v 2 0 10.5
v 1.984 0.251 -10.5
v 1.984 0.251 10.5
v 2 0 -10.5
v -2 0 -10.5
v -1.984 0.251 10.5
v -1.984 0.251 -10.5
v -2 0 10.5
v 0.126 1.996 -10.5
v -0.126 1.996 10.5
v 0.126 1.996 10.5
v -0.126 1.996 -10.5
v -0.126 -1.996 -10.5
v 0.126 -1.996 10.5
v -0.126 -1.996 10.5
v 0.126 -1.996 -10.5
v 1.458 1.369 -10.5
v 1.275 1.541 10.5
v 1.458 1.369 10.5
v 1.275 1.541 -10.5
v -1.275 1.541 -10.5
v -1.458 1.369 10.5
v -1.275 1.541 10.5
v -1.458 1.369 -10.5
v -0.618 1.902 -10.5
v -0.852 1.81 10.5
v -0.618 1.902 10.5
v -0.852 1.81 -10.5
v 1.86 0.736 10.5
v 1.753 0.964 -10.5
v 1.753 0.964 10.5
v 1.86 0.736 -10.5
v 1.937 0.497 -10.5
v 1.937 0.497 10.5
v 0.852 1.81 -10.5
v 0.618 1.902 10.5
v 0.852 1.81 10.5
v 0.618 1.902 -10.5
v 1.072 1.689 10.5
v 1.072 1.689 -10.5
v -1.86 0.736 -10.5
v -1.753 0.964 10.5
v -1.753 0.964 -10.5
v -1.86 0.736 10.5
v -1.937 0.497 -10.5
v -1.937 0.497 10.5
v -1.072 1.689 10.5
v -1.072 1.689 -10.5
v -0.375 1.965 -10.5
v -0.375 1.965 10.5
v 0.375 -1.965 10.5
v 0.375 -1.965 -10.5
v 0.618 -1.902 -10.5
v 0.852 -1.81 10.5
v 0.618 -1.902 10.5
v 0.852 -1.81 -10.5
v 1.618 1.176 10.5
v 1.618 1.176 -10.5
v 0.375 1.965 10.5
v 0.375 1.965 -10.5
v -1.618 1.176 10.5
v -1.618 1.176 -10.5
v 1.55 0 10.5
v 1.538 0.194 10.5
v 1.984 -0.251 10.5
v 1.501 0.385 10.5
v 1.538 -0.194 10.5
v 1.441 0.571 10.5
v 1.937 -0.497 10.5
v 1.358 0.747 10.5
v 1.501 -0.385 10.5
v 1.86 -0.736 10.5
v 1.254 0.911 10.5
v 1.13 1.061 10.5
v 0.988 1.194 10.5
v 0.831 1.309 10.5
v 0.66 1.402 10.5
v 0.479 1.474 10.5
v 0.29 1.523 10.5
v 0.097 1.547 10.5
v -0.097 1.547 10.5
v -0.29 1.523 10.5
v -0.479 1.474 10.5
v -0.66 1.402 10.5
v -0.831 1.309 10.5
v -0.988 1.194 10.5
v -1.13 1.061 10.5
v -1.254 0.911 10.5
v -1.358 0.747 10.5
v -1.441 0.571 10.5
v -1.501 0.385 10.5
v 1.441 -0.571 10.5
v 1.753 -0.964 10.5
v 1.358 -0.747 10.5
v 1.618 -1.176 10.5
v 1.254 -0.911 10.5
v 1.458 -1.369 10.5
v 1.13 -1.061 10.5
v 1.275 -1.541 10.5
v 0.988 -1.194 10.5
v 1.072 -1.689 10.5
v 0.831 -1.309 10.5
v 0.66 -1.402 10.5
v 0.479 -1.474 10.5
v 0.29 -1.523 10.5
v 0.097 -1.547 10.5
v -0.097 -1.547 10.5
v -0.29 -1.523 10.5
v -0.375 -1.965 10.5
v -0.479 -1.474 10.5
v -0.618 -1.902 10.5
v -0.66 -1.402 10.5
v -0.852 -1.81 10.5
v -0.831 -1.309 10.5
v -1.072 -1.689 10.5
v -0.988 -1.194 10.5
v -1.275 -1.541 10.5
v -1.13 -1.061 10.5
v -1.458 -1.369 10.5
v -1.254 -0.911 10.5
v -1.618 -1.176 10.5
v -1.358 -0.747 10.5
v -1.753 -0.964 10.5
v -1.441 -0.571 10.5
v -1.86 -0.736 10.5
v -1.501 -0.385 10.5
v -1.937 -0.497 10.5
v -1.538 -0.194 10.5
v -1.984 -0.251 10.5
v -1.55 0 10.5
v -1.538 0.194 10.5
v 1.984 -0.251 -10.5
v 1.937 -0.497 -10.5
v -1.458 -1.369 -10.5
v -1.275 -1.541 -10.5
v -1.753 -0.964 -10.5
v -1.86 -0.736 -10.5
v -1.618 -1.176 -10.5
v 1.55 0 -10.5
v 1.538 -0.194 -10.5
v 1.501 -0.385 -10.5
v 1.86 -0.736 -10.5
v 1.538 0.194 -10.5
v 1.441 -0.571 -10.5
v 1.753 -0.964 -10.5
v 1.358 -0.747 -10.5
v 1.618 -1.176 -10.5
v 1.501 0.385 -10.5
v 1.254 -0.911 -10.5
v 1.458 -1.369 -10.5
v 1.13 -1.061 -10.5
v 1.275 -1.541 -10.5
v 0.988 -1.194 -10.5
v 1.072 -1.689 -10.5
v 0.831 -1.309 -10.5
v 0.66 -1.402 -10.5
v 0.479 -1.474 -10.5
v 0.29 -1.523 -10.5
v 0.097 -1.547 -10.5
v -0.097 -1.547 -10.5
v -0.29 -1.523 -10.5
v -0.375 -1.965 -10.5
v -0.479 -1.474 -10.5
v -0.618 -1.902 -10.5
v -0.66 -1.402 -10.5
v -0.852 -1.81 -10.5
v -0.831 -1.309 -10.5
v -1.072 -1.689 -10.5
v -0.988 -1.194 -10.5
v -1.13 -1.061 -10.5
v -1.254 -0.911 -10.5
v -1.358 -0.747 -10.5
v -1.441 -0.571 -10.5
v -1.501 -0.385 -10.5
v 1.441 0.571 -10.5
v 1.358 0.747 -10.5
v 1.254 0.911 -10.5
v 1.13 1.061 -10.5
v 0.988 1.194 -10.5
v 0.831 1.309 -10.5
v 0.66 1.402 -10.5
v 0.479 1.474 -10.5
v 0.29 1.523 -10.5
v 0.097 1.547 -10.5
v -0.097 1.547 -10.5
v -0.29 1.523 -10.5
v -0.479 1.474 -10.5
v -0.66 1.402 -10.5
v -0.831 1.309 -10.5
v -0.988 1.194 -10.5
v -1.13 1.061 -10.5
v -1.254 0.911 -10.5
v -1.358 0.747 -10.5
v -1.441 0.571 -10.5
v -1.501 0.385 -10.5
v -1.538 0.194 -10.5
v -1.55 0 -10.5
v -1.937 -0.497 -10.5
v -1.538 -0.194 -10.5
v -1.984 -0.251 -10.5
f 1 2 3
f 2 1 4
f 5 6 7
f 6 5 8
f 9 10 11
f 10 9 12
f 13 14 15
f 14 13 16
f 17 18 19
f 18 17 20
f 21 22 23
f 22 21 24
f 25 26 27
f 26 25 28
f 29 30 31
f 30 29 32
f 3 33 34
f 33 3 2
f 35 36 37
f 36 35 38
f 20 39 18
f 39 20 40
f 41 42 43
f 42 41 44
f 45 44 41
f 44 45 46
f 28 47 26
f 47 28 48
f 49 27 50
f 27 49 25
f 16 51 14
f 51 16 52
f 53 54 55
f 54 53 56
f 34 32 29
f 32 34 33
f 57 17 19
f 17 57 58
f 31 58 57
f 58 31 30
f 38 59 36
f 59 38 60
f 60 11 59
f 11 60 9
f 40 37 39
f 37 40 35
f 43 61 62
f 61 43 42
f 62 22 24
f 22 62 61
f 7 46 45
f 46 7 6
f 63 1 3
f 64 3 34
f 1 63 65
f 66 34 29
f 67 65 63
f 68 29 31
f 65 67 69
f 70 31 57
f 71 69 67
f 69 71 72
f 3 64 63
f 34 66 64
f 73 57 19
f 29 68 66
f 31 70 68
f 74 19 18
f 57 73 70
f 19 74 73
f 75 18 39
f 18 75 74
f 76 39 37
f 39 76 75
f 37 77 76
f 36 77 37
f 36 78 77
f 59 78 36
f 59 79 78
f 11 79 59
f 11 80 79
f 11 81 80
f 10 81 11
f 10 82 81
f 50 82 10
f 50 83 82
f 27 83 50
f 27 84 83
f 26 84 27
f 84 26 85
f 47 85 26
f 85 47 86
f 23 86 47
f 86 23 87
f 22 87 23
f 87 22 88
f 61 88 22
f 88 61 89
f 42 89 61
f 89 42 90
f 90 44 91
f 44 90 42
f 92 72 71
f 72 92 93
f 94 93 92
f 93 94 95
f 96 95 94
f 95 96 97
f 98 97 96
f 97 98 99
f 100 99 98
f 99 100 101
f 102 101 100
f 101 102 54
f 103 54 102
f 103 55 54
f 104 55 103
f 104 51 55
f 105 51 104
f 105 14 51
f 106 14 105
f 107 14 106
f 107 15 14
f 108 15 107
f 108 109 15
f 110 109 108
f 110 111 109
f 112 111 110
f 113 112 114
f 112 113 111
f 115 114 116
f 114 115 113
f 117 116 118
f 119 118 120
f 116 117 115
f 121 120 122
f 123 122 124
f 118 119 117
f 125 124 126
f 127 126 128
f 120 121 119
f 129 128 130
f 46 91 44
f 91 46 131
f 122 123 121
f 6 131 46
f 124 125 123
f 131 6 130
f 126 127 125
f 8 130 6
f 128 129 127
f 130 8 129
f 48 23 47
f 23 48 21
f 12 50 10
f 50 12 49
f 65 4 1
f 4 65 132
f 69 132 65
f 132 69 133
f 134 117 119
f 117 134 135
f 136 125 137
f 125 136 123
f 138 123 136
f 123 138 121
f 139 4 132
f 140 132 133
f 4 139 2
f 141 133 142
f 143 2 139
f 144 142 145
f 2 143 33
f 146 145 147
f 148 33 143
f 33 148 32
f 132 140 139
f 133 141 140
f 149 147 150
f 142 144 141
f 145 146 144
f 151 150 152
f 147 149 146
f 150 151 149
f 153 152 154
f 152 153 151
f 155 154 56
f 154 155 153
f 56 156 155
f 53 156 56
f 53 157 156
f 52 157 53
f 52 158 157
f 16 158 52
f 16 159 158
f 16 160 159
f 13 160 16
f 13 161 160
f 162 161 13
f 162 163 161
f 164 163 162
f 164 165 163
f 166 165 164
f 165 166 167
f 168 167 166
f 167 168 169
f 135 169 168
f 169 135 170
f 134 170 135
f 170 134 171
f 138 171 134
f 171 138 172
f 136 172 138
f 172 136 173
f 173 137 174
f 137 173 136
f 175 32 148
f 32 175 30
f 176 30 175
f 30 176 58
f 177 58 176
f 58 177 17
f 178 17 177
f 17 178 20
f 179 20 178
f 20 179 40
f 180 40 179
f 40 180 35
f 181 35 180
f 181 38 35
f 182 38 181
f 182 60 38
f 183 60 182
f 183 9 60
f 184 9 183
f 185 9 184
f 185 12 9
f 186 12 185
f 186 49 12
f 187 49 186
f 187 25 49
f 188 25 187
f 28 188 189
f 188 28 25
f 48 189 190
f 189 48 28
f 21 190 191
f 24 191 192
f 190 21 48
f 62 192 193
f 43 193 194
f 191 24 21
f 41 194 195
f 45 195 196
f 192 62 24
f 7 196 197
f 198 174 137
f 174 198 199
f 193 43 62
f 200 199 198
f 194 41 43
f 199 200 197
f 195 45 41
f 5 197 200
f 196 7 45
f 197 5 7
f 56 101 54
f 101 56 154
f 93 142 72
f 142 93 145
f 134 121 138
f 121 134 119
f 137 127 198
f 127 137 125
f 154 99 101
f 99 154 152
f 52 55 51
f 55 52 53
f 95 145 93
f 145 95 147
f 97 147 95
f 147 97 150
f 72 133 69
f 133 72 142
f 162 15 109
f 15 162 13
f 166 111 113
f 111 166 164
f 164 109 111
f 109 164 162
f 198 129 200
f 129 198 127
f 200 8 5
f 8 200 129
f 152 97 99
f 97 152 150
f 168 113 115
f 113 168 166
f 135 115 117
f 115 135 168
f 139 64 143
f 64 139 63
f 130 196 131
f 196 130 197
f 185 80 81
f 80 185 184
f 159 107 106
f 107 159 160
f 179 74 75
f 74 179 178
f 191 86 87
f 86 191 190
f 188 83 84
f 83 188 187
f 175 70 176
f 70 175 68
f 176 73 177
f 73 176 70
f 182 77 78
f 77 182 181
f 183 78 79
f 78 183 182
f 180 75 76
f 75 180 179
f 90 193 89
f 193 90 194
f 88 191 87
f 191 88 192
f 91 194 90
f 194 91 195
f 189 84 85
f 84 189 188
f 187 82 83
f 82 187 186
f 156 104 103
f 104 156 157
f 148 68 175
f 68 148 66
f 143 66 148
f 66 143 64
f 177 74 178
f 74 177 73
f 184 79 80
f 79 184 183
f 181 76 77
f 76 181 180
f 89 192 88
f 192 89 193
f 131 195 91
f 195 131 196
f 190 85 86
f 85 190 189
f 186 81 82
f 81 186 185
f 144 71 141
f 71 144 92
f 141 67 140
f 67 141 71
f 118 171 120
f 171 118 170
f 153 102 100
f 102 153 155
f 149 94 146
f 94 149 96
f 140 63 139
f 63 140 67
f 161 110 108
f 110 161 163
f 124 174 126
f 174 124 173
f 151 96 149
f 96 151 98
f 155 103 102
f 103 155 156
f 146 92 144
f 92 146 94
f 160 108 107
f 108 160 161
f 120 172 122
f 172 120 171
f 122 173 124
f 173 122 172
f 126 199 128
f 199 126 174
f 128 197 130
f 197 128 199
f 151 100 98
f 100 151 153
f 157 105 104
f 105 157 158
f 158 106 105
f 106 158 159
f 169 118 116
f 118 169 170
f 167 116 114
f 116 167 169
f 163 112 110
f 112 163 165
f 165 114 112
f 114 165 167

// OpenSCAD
$fn = 50;


difference() {
	union() {
		translate(v = [0, 0, -10.5000000000]) {
			cylinder(h = 21, r = 2.0000000000);
		}
	}
	union() {
		translate(v = [0, 0, -100.0000000000]) {
			cylinder(h = 200, r = 1.5500000000);
		}
	}
}
